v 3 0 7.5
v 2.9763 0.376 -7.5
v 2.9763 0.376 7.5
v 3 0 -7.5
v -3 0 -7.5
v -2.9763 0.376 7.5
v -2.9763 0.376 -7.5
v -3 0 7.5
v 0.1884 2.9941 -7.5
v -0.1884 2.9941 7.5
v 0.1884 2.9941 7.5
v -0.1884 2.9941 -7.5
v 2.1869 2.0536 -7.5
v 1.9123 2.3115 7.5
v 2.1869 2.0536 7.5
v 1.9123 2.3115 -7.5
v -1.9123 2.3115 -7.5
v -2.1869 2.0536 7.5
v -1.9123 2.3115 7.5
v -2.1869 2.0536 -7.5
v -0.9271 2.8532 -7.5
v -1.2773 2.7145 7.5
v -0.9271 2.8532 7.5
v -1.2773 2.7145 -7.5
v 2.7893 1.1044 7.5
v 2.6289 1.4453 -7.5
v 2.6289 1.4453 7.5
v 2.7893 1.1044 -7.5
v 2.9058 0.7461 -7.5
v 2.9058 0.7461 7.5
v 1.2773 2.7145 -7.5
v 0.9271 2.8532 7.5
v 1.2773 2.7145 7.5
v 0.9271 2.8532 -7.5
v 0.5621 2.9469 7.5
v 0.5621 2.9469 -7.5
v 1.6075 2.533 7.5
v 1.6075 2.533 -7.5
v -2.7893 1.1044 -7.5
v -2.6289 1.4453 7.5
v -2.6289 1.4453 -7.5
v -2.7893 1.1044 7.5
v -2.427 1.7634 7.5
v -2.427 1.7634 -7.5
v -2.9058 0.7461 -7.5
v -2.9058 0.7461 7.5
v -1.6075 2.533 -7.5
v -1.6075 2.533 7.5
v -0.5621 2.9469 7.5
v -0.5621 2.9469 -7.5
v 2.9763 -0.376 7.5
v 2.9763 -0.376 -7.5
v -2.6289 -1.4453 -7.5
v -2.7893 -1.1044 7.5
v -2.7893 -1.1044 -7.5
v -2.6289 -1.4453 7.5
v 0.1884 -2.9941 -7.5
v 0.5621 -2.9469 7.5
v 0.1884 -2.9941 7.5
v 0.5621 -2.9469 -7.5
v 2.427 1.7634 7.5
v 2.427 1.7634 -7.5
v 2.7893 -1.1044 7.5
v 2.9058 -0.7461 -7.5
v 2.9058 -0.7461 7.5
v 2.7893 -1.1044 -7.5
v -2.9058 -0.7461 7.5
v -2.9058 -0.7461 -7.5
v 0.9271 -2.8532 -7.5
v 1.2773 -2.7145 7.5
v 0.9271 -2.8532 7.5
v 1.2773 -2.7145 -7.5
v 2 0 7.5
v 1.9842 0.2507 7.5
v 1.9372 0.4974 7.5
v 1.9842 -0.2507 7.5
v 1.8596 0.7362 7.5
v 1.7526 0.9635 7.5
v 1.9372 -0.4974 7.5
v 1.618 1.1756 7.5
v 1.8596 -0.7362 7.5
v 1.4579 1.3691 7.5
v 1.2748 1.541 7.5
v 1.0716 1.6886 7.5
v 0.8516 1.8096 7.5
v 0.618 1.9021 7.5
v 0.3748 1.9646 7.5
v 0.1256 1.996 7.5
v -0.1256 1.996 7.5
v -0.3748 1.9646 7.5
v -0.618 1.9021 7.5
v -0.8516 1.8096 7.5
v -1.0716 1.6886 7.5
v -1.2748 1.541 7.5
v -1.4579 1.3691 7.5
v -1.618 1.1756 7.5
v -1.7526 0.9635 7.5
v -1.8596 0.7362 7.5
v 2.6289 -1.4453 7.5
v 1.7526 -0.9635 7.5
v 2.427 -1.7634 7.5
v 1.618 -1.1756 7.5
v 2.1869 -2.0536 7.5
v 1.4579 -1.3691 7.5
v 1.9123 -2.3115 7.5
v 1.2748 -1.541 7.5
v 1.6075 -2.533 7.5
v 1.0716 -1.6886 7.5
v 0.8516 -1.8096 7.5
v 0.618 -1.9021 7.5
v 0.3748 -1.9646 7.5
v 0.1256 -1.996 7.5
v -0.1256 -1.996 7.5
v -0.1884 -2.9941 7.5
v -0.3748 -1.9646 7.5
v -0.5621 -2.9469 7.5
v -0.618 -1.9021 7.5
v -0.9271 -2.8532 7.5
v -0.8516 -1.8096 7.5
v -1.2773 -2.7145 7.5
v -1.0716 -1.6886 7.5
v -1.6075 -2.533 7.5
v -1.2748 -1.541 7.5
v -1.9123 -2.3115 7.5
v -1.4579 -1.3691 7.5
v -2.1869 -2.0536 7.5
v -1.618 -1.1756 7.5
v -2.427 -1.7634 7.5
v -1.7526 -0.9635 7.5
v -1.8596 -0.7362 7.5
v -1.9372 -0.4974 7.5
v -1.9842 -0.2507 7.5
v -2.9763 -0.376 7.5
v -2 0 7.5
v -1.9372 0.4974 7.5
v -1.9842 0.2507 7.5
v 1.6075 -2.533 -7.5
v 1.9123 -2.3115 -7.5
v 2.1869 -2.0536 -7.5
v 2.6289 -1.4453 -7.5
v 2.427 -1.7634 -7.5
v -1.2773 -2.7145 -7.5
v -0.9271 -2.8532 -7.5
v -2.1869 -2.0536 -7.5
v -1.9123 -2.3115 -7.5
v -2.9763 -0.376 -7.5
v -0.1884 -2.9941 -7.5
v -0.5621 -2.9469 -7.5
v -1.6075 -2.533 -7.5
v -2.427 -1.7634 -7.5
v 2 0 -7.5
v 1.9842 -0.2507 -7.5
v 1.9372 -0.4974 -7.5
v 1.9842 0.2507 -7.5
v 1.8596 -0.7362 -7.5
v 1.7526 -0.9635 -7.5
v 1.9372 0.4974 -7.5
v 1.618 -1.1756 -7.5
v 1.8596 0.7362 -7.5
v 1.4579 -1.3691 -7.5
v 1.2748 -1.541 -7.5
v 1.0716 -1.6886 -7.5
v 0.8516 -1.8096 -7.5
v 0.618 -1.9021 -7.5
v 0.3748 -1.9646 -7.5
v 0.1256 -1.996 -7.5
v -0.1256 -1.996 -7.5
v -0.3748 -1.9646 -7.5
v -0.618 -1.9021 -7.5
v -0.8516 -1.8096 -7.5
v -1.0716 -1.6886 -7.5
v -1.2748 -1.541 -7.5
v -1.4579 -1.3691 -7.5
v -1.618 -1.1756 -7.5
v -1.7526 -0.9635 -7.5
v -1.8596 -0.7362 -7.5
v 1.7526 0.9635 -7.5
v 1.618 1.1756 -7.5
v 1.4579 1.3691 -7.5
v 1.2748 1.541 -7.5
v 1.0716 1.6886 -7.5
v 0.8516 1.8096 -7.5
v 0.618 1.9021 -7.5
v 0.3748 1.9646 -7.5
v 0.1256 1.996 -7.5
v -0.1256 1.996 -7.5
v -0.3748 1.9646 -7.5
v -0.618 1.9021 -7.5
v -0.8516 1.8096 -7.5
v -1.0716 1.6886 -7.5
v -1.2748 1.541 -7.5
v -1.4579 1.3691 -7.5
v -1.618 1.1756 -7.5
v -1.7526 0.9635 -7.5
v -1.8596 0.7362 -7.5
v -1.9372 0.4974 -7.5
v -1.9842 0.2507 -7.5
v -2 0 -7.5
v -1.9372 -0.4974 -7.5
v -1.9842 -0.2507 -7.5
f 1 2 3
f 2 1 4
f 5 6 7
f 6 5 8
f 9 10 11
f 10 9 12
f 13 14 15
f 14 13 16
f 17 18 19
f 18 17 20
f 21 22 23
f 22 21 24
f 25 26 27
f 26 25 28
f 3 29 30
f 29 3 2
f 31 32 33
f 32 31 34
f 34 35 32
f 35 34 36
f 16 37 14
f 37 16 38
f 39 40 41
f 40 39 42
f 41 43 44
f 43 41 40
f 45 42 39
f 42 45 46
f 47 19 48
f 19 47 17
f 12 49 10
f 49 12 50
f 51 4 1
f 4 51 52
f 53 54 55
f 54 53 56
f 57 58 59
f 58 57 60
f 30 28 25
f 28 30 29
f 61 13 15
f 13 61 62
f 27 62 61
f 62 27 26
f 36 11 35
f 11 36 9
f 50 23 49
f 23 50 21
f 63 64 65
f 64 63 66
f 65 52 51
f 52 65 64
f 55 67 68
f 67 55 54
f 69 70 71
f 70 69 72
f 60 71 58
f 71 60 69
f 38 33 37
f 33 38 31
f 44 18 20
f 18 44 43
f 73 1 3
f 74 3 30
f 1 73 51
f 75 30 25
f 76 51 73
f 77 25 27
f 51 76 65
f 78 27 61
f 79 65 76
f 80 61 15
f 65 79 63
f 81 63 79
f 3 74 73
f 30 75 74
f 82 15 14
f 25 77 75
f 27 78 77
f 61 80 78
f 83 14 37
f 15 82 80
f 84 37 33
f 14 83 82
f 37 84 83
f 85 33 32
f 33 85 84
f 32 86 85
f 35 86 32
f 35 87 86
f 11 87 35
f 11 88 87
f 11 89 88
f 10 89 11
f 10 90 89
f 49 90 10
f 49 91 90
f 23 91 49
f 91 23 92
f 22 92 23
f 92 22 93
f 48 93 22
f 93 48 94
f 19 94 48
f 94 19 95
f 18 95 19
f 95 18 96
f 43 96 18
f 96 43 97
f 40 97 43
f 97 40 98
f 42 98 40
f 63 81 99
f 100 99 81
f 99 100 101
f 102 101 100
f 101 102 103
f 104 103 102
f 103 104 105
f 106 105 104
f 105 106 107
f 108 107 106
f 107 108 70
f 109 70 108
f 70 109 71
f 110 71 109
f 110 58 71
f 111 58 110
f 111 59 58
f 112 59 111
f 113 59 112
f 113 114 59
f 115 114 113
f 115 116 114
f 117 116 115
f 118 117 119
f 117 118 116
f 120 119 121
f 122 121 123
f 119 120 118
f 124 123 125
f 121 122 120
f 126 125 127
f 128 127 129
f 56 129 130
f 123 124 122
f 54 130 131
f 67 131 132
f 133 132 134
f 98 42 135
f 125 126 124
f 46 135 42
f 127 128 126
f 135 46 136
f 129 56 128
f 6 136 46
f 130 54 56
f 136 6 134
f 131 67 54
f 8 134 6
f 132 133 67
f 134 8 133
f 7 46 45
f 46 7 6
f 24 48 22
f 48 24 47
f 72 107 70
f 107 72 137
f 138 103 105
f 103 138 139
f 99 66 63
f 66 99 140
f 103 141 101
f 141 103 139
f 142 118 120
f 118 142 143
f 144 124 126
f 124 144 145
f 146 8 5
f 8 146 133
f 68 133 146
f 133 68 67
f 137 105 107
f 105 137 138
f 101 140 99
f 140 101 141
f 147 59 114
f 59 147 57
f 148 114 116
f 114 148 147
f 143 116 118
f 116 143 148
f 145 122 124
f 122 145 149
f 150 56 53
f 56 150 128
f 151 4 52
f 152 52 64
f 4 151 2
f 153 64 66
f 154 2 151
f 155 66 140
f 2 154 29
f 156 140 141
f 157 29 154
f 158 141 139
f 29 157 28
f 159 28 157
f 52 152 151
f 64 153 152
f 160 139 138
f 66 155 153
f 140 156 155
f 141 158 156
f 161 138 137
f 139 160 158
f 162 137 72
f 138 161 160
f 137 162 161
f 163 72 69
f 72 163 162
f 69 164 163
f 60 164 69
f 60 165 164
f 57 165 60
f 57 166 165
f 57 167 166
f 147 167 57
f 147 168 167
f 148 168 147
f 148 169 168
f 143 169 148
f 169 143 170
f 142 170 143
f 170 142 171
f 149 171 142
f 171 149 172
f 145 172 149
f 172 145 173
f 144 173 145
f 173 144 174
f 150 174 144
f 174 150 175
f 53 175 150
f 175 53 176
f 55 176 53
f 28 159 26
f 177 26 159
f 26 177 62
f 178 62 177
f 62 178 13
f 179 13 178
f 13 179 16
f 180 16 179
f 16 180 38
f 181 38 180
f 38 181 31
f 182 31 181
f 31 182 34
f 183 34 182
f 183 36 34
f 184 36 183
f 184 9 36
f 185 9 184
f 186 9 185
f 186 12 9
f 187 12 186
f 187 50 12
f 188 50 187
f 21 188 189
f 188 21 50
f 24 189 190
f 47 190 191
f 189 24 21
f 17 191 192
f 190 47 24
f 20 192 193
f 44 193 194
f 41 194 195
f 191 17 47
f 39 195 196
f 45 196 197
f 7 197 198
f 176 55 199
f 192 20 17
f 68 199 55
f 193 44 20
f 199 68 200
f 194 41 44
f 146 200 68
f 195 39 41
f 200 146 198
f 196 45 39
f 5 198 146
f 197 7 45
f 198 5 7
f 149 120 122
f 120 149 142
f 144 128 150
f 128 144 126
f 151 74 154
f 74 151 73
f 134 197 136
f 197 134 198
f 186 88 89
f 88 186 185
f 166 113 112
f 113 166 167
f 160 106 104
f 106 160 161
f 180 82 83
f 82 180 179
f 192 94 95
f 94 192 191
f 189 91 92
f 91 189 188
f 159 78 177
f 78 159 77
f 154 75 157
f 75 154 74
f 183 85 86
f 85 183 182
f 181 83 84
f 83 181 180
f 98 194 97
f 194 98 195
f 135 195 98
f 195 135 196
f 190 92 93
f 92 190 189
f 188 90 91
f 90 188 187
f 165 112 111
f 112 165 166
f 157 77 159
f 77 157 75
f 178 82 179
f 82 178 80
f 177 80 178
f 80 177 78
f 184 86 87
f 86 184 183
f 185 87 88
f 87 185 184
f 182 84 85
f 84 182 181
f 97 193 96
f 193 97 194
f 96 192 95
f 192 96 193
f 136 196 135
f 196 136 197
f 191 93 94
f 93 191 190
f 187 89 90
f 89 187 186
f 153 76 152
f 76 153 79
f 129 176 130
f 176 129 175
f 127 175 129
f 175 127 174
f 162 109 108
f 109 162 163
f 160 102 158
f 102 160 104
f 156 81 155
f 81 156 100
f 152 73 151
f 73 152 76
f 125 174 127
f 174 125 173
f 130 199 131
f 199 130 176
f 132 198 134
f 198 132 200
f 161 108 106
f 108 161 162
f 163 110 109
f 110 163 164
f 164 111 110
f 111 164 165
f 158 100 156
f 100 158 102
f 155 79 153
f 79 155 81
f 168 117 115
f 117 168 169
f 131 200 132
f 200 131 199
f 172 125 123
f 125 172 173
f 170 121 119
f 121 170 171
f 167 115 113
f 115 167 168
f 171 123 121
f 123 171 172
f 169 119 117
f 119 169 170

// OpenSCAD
$fn = 50;


difference() {
	union() {
		translate(v = [0, 0, -7.5000000000]) {
			cylinder(h = 15, r = 3.0000000000);
		}
	}
	union() {
		translate(v = [0, 0, -100.0000000000]) {
			cylinder(h = 200, r = 2.0000000000);
		}
	}
}
